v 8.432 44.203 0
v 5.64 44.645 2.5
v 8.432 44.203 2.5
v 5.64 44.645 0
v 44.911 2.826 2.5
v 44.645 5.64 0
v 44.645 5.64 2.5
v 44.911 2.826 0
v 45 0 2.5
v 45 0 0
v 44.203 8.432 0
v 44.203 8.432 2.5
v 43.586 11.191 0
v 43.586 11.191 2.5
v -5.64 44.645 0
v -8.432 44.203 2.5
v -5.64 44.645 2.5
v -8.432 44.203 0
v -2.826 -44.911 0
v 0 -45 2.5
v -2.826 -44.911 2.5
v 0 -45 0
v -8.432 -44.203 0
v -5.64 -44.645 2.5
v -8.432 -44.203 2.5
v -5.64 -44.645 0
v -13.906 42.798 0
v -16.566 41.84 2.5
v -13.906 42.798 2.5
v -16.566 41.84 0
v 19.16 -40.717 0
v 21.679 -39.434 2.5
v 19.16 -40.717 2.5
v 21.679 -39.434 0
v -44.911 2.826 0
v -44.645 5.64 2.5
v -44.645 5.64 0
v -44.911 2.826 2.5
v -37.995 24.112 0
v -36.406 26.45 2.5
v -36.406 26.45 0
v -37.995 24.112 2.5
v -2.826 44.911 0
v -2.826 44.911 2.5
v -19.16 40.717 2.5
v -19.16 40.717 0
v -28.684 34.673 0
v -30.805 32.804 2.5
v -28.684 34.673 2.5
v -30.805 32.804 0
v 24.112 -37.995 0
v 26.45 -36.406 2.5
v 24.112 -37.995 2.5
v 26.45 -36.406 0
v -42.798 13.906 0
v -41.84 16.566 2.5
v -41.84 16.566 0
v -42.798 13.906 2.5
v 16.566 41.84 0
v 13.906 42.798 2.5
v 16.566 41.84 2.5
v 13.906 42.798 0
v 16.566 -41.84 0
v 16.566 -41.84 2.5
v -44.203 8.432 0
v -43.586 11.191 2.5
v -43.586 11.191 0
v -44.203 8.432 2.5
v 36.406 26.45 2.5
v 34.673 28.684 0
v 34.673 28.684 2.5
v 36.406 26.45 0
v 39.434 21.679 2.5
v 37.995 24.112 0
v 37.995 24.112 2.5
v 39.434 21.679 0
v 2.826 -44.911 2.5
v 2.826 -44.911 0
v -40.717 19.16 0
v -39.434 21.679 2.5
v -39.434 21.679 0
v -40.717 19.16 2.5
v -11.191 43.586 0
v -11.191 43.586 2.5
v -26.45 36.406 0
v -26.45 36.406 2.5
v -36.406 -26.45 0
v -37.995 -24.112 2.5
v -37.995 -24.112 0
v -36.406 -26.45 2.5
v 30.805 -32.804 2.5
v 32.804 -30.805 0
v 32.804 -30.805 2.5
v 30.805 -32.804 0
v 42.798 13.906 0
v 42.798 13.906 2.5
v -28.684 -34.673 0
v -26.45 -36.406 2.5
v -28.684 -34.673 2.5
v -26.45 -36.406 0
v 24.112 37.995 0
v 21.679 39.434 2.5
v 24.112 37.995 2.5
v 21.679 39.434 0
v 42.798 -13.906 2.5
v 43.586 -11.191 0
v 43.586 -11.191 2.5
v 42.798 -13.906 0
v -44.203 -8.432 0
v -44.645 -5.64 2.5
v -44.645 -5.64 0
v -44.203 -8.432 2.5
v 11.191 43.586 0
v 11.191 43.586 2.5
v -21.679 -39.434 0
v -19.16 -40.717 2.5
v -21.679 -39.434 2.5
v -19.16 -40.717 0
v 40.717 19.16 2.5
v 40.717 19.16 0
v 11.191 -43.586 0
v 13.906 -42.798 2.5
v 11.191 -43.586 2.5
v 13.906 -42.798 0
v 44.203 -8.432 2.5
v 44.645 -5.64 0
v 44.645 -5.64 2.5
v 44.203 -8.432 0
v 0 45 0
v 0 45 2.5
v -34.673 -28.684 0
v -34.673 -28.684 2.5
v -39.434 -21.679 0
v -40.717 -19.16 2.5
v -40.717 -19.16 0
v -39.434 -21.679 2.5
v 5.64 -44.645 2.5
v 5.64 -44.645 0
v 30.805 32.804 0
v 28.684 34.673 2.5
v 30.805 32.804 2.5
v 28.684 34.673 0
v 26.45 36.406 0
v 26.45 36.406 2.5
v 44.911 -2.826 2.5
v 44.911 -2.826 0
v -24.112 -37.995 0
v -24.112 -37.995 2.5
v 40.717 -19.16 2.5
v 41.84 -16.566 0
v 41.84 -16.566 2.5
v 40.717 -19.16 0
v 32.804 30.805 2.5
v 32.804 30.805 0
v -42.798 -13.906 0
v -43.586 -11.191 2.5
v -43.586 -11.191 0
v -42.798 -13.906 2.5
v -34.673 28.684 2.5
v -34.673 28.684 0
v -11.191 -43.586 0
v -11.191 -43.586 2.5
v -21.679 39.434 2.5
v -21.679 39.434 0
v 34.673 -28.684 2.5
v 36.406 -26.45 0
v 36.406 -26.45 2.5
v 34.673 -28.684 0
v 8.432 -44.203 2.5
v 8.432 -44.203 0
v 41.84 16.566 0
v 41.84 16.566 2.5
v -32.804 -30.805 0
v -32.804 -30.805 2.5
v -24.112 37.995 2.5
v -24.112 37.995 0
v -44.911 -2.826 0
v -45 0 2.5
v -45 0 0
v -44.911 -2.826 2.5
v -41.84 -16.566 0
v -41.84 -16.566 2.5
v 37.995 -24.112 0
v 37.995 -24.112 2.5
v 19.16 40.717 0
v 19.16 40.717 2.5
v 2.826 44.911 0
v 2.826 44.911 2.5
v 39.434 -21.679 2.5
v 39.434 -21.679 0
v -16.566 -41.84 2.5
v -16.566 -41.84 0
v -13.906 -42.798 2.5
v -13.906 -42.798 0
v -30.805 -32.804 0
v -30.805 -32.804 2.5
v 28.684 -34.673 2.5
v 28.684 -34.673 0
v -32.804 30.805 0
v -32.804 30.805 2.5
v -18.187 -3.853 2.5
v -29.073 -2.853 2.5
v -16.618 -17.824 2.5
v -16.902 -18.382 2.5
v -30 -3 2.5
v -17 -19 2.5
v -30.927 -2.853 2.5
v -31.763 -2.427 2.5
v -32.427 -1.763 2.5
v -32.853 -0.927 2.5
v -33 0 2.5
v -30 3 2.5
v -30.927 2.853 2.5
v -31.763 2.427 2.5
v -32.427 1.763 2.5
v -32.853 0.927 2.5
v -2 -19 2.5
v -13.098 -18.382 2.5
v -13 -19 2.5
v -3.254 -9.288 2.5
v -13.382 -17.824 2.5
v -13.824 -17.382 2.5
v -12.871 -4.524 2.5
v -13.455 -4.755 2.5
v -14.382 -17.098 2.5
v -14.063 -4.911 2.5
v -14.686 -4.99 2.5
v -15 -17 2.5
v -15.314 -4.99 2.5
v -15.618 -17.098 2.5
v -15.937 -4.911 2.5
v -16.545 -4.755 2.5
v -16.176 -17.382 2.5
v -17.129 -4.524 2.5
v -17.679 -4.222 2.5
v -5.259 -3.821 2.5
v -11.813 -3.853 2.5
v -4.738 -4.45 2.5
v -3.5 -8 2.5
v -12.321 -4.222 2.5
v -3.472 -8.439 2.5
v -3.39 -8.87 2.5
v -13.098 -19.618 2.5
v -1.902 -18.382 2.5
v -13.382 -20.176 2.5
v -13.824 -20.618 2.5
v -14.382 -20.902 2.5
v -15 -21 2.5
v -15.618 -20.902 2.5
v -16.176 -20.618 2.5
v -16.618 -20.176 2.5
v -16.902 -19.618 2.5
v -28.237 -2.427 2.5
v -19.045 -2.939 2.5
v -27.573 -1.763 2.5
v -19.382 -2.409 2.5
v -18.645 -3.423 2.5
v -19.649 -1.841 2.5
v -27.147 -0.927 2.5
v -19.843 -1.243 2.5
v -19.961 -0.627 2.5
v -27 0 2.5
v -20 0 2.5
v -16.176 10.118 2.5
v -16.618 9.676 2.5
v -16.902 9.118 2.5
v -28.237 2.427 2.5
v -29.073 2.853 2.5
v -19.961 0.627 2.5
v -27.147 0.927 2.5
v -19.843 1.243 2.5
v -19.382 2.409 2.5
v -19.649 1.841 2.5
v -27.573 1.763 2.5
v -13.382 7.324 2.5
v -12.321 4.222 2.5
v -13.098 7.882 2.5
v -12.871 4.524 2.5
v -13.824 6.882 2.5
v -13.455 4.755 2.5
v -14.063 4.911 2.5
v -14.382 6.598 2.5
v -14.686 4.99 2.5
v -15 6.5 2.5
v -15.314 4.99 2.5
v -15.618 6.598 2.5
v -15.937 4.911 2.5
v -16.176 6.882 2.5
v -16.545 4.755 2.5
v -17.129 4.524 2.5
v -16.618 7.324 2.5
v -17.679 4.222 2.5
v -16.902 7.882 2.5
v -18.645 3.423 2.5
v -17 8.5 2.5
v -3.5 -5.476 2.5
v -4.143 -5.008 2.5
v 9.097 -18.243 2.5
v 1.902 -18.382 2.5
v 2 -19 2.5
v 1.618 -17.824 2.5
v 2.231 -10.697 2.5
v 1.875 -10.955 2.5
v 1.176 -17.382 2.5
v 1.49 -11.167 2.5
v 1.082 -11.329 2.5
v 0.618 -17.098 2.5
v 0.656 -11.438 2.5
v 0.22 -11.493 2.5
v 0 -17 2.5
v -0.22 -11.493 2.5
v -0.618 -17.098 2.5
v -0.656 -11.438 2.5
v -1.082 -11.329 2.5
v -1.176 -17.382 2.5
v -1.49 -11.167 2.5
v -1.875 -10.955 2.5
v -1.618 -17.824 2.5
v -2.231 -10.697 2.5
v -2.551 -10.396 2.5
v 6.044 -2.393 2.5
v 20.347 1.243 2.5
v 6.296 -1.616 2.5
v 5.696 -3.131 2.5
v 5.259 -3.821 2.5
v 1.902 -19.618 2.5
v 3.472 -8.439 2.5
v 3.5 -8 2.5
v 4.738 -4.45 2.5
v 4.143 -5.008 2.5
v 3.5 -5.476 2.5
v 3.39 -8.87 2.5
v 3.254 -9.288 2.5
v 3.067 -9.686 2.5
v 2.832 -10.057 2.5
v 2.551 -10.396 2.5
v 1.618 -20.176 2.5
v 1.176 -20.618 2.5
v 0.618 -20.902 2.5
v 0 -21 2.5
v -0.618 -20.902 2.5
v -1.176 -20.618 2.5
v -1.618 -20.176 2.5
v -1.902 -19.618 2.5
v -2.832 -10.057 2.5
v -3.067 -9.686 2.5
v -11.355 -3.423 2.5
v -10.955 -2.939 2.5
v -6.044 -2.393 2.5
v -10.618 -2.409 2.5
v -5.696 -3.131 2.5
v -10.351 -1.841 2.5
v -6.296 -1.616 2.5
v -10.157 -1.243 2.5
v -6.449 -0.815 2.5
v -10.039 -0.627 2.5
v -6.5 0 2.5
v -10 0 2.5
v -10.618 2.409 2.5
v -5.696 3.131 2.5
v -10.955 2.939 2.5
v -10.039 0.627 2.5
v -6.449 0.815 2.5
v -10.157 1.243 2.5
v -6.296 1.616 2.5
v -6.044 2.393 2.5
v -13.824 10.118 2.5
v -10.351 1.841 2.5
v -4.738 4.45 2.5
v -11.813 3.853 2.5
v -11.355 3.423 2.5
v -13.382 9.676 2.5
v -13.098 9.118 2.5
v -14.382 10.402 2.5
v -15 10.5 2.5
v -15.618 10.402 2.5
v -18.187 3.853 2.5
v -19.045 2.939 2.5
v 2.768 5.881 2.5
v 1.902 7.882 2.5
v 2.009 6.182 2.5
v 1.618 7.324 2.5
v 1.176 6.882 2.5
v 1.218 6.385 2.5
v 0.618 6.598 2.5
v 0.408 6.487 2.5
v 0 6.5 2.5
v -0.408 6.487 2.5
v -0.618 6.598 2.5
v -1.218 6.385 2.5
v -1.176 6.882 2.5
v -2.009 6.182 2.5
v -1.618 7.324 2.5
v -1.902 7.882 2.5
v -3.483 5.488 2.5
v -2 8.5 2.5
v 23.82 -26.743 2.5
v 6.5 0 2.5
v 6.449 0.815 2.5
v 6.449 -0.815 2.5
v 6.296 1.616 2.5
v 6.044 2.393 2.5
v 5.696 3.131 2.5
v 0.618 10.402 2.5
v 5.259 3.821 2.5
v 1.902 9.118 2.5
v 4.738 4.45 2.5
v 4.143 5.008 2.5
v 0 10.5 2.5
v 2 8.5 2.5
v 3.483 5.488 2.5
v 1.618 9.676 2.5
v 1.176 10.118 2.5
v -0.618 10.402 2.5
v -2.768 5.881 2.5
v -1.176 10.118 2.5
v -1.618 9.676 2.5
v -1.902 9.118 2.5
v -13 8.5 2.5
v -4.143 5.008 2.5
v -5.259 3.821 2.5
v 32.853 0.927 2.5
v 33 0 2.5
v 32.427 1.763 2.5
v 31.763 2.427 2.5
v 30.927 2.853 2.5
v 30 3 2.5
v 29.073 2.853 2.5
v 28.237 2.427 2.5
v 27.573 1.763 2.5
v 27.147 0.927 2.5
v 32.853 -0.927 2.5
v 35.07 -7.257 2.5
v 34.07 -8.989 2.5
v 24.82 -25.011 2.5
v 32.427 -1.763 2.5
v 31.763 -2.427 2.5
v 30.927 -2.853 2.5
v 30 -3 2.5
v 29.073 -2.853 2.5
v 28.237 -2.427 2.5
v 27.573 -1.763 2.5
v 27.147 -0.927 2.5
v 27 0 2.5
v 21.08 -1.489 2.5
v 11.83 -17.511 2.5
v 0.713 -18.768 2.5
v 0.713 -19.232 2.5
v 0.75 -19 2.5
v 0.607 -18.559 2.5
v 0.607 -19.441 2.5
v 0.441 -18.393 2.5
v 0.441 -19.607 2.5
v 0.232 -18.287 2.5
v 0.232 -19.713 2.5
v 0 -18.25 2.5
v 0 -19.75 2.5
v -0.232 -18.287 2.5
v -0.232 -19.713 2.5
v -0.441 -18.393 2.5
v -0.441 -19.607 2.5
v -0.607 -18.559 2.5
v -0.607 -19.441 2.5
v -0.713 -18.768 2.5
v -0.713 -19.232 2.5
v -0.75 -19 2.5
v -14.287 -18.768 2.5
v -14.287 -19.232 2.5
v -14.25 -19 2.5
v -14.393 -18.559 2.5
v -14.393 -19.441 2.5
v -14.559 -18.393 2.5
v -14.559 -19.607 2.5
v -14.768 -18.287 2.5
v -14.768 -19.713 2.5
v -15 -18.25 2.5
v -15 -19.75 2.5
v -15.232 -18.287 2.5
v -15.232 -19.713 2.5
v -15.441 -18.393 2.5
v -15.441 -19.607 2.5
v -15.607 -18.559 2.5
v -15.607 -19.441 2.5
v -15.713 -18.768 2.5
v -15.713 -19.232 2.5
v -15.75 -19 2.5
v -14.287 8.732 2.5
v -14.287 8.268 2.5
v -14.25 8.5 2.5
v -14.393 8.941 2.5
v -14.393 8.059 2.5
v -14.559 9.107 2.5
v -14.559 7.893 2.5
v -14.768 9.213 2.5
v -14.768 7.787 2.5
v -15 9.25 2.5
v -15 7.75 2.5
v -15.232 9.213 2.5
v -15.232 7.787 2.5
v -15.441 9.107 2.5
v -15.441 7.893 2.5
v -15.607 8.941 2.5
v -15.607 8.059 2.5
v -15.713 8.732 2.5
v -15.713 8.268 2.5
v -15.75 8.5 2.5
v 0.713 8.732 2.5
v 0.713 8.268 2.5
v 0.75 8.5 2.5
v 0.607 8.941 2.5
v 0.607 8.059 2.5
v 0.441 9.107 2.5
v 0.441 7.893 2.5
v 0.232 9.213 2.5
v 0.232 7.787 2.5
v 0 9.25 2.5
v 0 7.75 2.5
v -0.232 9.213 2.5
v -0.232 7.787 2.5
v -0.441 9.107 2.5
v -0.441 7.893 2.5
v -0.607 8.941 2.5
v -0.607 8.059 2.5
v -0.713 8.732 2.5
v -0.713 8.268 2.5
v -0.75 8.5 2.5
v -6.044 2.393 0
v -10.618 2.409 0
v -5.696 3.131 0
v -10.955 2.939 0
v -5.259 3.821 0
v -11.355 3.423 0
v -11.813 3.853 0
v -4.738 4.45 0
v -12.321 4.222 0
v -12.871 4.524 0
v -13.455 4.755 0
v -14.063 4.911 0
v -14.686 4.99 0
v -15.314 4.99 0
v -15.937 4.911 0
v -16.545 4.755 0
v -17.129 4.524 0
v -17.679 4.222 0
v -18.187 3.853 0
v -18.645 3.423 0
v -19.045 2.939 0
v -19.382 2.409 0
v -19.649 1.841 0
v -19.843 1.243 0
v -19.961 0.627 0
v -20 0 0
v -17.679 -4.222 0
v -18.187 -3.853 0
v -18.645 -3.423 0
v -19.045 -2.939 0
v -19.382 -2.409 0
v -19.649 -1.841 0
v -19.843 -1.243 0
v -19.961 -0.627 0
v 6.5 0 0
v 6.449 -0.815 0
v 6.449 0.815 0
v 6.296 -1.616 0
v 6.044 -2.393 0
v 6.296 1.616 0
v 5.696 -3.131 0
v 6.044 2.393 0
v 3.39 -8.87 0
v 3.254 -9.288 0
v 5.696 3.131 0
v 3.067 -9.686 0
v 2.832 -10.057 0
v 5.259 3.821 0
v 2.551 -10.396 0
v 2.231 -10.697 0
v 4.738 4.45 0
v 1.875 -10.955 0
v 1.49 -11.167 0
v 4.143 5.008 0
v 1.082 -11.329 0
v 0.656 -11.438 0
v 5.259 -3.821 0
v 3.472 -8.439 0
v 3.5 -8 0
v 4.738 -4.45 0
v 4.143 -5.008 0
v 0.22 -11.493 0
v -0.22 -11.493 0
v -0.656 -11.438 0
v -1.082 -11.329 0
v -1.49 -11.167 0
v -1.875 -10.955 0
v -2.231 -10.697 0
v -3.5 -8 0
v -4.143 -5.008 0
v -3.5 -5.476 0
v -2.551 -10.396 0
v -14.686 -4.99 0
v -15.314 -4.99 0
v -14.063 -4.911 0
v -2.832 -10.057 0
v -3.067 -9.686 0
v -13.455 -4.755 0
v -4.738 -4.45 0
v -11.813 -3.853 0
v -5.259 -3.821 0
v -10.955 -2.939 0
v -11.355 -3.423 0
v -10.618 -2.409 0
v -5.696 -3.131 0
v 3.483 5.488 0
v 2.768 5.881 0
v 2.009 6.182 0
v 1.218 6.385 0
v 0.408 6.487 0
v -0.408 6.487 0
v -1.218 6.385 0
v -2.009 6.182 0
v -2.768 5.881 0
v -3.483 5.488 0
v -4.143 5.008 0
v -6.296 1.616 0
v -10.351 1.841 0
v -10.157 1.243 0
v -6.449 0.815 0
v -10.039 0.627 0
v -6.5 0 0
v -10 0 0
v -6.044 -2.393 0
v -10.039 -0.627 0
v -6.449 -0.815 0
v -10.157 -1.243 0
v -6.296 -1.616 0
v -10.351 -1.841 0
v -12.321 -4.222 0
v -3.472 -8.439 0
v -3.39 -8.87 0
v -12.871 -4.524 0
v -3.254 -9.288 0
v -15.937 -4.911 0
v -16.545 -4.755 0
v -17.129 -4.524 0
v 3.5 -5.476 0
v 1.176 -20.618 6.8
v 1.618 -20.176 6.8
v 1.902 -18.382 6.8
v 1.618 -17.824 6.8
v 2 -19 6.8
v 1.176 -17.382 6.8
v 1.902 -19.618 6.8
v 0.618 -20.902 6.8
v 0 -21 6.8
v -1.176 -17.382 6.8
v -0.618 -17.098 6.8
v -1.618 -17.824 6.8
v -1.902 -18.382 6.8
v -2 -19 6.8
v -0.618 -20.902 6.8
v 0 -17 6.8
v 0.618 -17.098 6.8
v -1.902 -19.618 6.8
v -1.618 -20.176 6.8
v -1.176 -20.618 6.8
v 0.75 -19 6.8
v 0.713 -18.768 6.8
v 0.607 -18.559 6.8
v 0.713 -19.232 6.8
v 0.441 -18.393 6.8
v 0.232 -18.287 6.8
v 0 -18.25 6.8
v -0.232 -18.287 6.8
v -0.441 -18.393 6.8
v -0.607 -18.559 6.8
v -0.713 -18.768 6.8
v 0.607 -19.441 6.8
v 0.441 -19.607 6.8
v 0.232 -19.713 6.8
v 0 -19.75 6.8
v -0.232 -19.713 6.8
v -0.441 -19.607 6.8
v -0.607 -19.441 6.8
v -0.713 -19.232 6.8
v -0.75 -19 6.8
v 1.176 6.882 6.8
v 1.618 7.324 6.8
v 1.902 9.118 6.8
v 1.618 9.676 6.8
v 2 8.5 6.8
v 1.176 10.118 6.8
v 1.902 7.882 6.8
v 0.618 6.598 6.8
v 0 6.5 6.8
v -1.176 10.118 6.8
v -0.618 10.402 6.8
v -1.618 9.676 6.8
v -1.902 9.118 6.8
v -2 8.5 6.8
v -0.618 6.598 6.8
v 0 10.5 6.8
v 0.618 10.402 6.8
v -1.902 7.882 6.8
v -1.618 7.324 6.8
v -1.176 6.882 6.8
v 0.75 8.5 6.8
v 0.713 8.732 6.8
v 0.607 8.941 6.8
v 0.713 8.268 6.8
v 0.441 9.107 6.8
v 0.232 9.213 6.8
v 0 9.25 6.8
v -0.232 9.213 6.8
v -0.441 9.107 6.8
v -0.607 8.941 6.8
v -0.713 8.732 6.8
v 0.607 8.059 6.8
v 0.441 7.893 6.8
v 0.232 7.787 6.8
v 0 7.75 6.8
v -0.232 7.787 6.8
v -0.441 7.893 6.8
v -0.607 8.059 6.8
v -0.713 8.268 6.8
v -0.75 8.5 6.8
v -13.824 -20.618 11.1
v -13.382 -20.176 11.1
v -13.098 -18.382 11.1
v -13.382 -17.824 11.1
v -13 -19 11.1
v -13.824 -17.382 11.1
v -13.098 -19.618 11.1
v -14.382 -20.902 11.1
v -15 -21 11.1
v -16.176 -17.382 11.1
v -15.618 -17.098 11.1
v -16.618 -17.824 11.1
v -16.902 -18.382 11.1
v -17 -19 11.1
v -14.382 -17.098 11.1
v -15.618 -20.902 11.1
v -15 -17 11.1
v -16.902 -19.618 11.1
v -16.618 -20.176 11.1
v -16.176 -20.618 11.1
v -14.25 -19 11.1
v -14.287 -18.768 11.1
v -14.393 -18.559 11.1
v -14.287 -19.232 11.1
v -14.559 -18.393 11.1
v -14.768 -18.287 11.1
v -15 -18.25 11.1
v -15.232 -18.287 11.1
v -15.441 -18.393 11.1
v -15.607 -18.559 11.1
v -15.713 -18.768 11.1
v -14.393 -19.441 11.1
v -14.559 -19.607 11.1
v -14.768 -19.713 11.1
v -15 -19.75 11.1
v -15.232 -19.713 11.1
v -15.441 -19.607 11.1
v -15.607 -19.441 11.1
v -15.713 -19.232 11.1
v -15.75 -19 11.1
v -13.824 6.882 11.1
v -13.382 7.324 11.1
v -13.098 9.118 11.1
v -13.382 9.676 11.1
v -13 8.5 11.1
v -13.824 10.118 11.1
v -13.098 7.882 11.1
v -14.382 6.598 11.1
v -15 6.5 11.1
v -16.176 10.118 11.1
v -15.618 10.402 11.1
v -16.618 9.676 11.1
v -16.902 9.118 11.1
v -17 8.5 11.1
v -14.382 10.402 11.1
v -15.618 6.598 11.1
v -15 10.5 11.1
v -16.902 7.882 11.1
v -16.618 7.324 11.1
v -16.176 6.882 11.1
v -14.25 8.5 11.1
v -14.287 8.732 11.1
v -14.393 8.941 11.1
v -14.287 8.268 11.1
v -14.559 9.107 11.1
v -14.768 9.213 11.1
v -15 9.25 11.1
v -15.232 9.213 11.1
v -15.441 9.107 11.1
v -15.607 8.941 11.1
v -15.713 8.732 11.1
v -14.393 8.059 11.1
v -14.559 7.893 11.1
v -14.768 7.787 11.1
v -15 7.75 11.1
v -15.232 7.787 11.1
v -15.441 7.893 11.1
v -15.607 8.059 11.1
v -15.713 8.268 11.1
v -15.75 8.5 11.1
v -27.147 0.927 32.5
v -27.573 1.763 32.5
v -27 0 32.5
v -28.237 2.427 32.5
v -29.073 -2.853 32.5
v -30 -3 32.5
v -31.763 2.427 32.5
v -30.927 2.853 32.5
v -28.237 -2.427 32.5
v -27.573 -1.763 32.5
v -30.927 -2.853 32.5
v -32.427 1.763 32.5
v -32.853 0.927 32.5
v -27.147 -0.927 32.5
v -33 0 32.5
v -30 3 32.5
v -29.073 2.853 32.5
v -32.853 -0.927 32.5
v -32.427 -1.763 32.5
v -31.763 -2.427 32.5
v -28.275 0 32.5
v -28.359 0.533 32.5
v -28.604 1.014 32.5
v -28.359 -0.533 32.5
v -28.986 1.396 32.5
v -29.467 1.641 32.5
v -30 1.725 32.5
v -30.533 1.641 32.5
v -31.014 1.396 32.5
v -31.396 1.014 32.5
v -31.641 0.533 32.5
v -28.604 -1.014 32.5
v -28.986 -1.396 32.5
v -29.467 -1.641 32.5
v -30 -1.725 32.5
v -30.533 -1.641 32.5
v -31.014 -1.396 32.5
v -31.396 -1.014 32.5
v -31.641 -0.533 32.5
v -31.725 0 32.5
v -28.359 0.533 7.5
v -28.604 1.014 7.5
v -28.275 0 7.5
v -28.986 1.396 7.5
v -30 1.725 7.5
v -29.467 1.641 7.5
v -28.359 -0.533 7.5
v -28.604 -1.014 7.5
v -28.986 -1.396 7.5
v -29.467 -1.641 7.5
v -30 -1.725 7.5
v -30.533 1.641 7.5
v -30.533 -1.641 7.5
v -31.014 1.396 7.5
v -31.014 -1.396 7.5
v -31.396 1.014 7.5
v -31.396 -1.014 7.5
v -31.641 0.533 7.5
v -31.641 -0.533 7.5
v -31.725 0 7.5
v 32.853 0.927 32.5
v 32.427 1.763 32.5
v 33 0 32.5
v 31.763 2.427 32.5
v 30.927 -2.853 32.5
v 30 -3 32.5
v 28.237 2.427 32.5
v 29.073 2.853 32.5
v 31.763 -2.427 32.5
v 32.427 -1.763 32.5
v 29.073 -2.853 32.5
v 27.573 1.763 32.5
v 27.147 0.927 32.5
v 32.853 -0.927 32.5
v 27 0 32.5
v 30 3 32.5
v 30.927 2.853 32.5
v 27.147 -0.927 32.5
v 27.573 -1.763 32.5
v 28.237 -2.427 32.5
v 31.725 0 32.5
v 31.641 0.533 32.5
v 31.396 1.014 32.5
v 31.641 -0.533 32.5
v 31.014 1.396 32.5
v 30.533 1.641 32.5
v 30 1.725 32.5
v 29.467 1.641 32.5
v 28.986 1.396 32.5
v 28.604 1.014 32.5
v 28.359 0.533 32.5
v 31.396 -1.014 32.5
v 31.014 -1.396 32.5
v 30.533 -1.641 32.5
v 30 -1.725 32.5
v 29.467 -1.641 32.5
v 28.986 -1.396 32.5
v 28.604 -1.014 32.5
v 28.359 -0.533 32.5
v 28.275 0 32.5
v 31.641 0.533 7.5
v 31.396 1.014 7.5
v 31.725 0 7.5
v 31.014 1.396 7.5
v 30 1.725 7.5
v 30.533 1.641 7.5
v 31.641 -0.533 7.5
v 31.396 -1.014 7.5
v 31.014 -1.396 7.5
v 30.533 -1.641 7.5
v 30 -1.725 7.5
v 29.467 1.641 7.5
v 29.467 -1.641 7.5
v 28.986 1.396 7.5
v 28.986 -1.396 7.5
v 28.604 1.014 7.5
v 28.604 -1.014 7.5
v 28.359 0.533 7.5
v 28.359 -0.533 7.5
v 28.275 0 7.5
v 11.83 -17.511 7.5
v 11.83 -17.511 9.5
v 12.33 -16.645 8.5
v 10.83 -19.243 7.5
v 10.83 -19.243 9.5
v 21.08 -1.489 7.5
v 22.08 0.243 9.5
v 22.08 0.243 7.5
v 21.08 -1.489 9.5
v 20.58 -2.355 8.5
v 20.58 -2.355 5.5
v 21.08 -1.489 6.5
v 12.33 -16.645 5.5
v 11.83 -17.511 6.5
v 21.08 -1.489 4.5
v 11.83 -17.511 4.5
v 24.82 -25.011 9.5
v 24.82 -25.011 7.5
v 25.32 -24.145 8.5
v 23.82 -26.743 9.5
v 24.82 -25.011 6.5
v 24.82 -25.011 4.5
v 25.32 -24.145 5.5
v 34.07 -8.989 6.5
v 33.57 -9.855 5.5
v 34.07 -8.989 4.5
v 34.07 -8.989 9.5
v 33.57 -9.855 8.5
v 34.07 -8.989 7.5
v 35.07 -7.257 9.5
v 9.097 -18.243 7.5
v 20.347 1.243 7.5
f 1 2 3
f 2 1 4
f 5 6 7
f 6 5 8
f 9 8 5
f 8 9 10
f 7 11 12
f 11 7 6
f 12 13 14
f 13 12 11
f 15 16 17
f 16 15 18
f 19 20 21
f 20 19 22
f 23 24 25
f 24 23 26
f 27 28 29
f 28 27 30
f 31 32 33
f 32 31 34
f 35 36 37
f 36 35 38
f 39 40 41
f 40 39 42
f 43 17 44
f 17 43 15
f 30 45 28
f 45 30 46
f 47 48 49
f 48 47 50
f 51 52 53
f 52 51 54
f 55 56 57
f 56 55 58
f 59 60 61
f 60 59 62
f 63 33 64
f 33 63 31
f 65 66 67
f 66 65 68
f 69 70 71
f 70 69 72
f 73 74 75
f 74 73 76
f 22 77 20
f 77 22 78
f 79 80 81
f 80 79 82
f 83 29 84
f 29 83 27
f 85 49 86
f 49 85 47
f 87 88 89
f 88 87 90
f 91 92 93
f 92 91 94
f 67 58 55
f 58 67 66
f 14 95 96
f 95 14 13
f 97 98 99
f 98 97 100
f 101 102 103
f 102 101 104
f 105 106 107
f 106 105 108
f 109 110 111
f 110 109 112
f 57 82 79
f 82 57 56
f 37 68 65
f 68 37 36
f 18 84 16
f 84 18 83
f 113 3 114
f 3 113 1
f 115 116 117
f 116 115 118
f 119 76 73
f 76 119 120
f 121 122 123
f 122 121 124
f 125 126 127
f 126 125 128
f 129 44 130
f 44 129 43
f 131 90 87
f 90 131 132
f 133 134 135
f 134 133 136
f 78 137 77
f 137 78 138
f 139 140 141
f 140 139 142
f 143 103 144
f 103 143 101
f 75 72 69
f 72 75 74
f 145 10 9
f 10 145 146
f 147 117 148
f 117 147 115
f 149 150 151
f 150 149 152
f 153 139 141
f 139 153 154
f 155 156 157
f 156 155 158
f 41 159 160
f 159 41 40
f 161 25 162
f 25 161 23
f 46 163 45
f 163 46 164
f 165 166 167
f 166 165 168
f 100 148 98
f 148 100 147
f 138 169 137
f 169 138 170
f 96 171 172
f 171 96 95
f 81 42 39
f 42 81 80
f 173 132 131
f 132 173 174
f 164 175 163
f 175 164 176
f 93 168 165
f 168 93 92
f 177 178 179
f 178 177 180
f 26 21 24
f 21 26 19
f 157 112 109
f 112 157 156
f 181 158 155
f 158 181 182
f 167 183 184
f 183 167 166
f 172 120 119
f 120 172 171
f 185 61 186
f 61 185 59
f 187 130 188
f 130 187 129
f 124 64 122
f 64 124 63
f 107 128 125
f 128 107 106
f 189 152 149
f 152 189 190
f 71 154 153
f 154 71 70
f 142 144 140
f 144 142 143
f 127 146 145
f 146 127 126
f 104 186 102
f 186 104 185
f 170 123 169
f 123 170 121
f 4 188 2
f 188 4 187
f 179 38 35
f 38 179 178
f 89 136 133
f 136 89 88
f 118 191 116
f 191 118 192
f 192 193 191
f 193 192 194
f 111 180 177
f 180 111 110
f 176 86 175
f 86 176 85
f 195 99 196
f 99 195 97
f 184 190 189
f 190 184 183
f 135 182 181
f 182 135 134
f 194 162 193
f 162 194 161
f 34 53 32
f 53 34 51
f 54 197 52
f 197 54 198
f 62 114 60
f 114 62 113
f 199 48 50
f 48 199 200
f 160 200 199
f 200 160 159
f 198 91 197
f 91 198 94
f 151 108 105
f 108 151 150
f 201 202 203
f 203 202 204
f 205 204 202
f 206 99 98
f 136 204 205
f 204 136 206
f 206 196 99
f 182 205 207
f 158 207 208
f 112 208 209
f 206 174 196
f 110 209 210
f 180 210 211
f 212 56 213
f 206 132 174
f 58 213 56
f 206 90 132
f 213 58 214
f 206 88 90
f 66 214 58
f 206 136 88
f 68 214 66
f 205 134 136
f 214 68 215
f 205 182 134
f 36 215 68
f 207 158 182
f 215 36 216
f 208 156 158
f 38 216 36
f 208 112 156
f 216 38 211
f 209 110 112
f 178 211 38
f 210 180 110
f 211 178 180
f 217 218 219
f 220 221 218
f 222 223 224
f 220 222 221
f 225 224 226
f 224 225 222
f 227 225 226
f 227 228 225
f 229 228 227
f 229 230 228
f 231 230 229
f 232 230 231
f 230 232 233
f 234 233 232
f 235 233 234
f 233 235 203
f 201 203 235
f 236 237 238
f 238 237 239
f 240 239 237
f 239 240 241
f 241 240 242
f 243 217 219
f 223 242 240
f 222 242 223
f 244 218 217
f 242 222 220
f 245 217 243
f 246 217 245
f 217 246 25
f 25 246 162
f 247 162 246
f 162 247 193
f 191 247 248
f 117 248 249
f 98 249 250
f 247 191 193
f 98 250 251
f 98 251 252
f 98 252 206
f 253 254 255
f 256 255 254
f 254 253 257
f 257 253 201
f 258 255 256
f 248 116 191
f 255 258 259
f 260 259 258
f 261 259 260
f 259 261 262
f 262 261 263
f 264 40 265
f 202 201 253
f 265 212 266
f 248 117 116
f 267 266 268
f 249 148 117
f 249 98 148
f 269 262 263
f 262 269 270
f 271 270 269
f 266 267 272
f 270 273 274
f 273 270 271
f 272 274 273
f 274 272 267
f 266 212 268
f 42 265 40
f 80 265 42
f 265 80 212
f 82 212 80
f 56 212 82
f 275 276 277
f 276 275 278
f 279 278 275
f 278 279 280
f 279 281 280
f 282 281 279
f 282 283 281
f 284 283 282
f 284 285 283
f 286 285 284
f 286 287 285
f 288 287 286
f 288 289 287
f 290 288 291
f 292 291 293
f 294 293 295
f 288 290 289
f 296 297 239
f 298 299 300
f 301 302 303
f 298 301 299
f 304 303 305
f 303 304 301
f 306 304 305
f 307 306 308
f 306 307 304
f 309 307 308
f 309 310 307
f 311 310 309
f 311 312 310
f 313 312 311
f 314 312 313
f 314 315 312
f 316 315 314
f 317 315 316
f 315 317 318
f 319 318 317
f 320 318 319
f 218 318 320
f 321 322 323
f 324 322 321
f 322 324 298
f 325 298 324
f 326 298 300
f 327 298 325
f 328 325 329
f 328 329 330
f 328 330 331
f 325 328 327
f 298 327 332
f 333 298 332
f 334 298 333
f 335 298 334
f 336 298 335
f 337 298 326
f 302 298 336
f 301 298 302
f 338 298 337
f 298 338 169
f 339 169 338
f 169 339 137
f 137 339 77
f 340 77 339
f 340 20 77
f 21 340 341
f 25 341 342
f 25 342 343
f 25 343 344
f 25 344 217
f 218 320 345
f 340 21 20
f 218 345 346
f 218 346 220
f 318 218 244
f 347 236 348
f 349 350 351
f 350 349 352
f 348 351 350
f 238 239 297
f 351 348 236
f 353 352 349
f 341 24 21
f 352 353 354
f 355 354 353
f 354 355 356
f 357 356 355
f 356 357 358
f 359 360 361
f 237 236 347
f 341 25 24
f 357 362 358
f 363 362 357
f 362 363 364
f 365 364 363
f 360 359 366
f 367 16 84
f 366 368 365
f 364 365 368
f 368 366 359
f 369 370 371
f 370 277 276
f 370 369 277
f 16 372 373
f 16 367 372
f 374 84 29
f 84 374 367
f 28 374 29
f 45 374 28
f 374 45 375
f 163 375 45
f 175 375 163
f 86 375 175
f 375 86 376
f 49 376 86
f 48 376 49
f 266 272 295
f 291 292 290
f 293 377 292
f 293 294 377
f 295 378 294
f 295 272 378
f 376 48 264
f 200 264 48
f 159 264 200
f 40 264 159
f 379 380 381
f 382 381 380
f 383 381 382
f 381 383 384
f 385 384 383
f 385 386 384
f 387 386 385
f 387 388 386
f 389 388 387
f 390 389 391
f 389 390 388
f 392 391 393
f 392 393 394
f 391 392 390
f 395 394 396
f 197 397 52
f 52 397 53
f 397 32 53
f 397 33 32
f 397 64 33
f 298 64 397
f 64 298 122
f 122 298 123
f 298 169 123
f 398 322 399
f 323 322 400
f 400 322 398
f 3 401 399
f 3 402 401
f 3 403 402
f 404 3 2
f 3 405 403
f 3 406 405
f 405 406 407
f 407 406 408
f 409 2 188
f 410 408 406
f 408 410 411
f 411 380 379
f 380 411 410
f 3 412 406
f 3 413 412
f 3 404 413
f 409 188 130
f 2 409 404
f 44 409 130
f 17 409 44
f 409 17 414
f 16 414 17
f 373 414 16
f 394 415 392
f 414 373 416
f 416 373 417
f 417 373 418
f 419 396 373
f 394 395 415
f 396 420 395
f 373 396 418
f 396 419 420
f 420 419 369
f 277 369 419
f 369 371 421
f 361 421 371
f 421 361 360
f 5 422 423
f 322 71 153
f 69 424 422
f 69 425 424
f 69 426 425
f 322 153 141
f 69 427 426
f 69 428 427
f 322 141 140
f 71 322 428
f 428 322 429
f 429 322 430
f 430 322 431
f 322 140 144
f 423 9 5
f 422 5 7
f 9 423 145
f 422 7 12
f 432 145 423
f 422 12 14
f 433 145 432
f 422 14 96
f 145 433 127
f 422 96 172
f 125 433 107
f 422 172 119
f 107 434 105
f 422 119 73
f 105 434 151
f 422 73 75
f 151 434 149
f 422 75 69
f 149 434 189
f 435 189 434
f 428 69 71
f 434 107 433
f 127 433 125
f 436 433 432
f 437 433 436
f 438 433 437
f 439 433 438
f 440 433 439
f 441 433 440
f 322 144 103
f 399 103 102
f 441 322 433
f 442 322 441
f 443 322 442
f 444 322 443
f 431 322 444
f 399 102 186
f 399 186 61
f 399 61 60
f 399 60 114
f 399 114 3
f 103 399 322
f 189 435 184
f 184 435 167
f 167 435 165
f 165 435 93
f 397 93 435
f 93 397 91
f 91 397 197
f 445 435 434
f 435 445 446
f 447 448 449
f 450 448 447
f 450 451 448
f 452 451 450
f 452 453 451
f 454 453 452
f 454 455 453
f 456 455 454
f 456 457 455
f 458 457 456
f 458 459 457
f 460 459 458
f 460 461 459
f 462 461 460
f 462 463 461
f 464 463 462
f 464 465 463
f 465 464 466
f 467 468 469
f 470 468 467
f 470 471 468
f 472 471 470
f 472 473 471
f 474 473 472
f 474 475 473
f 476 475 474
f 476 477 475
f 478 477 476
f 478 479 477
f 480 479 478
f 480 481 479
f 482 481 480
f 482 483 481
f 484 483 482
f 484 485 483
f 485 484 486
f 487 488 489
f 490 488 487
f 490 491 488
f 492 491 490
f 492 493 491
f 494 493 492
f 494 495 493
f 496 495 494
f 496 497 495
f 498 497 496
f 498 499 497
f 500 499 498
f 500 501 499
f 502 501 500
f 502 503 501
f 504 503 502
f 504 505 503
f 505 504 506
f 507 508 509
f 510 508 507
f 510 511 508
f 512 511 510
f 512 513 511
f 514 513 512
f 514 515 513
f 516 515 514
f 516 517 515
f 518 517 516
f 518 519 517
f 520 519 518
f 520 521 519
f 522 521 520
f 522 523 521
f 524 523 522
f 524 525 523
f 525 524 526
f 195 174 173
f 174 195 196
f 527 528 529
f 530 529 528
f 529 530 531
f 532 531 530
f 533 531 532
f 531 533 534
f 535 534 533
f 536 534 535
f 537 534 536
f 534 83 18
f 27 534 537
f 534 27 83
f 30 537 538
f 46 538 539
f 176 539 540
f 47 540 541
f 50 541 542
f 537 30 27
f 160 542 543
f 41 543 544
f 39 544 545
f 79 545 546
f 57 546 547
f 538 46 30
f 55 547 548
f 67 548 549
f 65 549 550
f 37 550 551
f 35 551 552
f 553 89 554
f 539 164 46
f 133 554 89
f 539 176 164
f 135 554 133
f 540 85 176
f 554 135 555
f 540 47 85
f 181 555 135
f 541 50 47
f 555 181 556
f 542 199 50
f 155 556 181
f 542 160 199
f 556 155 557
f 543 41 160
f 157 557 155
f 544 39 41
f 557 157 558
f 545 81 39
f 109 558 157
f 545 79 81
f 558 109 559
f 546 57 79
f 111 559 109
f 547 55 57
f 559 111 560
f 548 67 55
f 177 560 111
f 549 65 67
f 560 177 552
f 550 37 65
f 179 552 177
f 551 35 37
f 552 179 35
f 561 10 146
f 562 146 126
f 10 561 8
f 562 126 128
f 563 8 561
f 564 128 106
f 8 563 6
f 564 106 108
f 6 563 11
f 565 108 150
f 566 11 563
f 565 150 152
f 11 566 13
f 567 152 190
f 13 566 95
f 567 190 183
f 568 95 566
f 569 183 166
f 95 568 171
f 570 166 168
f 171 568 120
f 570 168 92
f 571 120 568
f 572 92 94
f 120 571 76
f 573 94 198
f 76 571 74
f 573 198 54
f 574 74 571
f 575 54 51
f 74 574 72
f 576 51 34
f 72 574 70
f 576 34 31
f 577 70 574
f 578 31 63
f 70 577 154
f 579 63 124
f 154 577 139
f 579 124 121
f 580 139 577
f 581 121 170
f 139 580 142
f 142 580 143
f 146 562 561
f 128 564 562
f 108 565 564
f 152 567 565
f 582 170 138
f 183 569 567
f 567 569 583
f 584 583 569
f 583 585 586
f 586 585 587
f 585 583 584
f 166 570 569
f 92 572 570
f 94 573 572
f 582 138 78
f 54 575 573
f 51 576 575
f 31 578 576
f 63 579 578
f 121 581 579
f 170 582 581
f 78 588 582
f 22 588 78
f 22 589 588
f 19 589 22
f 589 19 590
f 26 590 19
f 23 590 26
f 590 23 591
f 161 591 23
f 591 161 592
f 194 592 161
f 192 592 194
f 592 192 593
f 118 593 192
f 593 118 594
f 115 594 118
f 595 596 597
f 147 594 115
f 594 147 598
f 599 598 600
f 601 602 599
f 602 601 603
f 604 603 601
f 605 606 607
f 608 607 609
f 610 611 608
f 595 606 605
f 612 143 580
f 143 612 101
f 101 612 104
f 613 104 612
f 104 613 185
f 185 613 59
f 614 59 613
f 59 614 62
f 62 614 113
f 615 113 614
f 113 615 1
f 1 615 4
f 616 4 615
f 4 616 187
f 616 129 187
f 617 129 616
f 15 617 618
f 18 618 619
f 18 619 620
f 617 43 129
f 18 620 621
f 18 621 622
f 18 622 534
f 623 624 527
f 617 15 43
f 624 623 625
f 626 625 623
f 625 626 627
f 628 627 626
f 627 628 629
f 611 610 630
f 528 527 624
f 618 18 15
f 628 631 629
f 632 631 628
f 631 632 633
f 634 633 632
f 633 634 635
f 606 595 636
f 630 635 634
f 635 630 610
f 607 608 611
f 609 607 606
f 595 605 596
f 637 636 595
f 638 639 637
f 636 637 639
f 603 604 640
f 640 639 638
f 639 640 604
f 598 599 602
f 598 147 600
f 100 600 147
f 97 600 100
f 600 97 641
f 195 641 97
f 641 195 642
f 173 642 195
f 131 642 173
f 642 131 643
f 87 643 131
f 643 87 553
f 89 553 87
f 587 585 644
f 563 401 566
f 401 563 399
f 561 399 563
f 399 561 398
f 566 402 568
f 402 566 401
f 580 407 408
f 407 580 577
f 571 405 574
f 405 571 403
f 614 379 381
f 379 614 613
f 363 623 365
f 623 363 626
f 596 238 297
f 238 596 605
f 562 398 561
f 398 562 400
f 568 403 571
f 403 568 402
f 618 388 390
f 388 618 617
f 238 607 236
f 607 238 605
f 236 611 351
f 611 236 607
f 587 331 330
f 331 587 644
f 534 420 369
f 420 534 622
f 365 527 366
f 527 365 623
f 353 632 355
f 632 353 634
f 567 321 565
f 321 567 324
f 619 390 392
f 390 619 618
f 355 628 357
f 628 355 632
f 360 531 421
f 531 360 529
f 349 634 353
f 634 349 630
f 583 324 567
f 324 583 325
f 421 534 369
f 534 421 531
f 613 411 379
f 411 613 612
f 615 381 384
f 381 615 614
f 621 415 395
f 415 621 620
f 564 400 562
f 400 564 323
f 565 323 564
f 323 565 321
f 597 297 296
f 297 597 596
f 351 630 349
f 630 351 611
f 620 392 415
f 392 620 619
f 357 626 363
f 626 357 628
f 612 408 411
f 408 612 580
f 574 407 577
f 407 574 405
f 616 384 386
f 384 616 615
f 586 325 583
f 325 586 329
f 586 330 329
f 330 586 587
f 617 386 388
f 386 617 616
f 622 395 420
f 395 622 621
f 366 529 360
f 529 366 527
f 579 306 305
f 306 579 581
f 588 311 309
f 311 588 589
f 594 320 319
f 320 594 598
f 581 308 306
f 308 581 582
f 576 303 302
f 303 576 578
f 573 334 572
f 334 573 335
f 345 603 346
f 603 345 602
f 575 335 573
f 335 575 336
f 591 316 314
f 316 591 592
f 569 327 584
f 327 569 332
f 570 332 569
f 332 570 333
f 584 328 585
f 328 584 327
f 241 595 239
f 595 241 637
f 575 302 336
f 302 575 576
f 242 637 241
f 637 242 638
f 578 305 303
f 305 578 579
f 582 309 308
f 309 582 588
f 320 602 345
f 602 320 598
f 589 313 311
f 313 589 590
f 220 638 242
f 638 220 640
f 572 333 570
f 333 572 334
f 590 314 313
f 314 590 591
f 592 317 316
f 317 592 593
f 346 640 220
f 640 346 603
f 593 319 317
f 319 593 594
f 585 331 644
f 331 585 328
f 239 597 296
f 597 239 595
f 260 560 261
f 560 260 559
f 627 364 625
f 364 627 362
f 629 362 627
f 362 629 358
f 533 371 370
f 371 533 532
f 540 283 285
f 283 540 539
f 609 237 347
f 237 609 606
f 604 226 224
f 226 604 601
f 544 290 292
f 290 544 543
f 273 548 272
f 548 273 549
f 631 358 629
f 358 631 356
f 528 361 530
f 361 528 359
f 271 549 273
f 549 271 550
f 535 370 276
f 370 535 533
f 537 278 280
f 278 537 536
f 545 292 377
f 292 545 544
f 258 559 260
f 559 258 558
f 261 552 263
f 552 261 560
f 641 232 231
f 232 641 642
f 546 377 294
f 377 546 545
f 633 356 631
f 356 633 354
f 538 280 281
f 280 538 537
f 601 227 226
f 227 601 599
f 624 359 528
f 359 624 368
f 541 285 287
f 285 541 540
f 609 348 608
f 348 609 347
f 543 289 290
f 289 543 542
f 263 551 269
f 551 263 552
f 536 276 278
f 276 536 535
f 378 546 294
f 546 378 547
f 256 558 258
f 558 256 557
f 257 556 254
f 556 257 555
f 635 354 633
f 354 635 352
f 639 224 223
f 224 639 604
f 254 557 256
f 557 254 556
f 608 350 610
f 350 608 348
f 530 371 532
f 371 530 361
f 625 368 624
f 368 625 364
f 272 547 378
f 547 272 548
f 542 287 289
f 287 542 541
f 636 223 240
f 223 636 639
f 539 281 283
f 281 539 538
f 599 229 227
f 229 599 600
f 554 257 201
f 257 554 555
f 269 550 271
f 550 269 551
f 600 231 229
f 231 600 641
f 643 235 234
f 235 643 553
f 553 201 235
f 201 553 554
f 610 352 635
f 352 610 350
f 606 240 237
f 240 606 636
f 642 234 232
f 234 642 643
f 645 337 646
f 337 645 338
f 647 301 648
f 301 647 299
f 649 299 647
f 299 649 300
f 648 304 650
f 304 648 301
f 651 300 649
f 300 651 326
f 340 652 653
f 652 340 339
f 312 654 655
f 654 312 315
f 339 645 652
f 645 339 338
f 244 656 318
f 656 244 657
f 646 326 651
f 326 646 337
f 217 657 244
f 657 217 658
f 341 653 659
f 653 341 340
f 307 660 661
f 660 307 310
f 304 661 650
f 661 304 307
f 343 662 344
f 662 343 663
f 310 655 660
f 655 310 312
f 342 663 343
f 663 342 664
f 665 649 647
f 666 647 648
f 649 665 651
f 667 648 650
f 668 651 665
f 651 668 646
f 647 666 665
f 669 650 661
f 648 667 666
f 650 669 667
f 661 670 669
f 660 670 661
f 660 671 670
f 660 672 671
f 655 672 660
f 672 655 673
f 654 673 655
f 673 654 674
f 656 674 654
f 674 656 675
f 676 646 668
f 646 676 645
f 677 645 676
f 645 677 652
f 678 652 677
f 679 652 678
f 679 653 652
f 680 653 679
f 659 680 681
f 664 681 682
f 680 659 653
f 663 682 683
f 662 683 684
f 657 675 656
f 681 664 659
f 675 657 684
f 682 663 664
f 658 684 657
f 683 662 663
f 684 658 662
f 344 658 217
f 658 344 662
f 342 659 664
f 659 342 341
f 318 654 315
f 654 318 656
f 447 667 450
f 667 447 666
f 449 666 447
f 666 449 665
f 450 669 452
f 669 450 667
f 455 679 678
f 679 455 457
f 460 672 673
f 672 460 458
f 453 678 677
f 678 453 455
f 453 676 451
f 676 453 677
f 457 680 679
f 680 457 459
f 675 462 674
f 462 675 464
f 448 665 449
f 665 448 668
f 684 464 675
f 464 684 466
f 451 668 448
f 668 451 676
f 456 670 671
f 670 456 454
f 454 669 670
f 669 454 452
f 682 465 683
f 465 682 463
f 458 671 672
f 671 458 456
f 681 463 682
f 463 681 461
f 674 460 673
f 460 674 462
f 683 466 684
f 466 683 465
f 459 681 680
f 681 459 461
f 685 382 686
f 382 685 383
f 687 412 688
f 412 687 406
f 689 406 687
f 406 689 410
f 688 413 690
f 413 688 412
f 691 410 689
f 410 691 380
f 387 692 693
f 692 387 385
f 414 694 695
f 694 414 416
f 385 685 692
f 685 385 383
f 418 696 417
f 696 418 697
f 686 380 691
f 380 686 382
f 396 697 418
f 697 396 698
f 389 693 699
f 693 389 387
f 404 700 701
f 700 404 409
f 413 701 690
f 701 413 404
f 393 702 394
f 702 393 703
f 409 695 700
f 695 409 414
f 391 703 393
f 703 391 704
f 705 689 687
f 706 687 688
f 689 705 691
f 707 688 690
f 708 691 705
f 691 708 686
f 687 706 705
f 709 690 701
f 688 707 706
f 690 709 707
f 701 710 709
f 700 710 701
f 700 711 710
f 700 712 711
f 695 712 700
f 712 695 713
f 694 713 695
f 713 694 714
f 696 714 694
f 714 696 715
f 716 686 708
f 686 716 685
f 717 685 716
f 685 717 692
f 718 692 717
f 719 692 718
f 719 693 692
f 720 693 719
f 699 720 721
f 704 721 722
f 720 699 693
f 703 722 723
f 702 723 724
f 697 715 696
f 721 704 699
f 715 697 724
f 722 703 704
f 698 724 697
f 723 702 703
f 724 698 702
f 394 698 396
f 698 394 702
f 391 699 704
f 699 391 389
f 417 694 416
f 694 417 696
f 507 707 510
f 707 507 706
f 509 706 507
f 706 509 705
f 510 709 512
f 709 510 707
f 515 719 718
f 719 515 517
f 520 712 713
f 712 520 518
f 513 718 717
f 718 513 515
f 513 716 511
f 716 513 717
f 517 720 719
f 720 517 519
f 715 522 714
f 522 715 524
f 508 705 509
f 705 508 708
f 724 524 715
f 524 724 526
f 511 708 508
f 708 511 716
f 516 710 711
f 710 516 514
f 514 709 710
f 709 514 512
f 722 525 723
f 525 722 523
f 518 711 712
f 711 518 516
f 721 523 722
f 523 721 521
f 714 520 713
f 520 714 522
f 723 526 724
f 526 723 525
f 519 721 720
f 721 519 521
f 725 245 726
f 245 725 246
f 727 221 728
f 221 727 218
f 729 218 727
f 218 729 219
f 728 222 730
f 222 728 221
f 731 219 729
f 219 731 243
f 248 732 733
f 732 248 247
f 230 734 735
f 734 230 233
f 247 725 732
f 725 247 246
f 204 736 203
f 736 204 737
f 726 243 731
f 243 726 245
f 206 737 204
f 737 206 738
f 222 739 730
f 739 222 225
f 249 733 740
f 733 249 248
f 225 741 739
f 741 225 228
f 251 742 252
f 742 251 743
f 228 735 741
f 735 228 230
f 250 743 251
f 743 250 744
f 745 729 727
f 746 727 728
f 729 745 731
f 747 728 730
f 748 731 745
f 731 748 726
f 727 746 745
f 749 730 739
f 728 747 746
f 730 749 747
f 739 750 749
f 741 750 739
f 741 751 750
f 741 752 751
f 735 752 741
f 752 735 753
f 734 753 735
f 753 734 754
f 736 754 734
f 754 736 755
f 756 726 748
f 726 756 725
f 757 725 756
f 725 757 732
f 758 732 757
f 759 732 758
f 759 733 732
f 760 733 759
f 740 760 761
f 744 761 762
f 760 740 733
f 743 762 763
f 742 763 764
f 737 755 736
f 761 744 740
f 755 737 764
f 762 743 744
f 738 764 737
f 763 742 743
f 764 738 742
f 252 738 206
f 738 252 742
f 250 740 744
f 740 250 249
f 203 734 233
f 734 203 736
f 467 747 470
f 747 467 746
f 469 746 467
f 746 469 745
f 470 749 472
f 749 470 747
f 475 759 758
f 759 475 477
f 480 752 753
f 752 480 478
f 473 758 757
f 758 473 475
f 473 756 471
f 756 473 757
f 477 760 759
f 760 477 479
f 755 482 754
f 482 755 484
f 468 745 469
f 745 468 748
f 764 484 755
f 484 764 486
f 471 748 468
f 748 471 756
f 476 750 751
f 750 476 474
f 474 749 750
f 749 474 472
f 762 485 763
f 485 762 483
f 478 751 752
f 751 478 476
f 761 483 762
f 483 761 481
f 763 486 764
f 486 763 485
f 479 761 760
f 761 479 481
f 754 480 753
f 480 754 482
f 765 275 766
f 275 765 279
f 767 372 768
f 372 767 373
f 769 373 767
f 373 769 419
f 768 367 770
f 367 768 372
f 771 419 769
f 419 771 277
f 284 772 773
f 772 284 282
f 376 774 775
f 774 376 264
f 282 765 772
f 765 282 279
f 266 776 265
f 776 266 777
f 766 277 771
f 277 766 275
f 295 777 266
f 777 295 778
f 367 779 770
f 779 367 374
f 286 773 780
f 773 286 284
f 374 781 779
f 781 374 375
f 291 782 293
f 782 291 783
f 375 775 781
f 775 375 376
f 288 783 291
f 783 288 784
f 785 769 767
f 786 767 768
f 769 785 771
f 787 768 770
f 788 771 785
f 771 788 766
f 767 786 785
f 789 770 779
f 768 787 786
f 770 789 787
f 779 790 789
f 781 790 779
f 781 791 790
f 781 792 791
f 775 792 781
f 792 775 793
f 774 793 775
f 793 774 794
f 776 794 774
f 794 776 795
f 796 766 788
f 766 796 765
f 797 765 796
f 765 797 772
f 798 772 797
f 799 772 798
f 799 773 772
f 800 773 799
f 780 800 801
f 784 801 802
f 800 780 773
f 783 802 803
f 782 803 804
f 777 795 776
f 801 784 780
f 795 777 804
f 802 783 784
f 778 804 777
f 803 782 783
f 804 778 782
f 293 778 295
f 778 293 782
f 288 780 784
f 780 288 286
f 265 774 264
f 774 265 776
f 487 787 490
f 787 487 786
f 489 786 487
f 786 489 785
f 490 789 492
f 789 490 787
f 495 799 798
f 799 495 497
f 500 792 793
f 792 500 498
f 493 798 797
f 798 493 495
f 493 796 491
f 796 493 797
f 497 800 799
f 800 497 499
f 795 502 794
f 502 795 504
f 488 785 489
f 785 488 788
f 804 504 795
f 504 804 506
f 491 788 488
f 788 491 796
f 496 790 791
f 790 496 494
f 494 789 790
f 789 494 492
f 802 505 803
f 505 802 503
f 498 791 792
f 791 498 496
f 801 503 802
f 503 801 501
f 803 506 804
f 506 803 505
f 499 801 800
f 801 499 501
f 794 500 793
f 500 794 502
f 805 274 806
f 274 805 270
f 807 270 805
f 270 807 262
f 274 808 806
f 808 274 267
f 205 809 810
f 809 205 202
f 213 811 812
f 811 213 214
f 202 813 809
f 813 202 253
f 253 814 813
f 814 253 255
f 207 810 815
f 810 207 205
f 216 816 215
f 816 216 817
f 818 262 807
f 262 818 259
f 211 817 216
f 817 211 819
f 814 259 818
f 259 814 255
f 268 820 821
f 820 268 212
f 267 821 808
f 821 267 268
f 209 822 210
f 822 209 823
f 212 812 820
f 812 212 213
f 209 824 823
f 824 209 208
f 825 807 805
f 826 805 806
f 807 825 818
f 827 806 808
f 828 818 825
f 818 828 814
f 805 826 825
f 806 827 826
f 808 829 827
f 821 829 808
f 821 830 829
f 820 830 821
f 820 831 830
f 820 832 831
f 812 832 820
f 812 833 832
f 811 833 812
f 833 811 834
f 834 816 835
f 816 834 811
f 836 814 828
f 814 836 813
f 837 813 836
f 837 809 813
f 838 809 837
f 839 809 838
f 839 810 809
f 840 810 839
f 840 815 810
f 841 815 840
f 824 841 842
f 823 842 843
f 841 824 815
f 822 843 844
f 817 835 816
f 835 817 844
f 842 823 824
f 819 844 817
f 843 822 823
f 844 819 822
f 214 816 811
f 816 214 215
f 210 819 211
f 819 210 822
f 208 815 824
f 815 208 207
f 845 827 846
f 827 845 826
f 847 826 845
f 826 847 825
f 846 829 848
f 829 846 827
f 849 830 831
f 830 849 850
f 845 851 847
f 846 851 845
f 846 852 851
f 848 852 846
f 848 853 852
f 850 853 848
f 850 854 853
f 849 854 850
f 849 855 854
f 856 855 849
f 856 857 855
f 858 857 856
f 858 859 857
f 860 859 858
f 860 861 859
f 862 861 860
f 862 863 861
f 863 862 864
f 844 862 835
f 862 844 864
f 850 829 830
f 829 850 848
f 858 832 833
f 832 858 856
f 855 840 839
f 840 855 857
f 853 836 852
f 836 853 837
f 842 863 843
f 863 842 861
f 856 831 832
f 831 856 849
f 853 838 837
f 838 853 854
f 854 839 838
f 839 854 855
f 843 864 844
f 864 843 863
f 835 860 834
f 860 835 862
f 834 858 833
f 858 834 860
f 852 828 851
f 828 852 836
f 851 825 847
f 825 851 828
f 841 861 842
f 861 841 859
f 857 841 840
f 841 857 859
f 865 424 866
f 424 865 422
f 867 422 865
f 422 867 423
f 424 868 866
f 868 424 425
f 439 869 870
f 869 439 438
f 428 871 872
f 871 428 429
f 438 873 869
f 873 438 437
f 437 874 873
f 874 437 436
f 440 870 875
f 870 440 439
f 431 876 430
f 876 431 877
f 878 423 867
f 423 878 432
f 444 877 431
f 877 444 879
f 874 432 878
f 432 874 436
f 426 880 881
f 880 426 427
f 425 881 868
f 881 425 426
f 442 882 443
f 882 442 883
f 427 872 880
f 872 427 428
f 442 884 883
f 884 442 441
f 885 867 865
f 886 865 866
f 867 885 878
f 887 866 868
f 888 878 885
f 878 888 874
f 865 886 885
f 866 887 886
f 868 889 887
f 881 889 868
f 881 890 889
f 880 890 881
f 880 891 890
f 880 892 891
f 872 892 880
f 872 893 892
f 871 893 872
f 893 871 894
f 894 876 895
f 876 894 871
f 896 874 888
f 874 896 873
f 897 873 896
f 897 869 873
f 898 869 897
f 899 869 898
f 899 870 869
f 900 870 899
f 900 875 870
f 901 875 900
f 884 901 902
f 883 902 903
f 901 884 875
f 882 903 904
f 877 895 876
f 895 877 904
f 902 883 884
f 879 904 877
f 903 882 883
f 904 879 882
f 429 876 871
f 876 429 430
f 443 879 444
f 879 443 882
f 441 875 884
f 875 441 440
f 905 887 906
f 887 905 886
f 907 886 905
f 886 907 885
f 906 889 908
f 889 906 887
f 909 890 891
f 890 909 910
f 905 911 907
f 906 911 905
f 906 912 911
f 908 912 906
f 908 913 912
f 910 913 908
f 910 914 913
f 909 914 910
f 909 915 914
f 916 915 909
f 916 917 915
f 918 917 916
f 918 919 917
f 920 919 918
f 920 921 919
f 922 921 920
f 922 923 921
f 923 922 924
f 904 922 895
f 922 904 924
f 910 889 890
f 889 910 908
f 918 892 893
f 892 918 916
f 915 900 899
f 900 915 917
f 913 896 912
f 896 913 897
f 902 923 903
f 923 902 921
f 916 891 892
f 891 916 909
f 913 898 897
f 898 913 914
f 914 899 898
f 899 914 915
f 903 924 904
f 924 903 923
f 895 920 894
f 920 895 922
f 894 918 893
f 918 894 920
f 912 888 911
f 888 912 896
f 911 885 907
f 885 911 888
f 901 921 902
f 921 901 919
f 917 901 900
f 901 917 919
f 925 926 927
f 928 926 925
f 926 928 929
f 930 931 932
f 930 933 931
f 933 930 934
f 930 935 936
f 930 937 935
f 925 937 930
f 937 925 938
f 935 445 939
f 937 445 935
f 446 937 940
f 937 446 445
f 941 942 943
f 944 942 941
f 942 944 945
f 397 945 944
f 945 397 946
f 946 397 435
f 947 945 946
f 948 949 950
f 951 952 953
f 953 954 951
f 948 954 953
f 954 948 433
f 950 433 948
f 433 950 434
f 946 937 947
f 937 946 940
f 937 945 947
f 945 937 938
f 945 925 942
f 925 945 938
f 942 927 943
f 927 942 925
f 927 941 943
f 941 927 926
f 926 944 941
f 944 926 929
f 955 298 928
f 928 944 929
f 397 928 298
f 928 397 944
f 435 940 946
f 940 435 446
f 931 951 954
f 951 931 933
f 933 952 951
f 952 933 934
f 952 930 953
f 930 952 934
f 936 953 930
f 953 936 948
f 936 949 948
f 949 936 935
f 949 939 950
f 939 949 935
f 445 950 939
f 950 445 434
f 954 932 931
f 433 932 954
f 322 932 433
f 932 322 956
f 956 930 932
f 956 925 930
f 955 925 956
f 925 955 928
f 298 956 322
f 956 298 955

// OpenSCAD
face_d=90;
face_th=2.5;


// servo calculations
servo_flange_len=4.7;
servo_flange_hole_to_edge_dist=2.35;
servo_width=12.3;
servo_len=22.8;

servo_left_flange_hole_to_hole = servo_flange_len+servo_len - servo_width/2 - servo_flange_hole_to_edge_dist;
servo_right_flange_hole_to_hole = servo_width/2 + servo_flange_len - servo_flange_hole_to_edge_dist;

servo_1_hole_d = 13;
servo_2_hole_d = 10;

servo_1_holder_h=4.3;
servo_holder_d=4;

servo_2_holder_h=8.6;

servo_holder_hole_h=10;
servo_holder_hole_d=1.5;

servo_2_offset = 15;

mount_d = 6;
mount_h = 30; // check me!
mount_hole_h = mount_h - 5;  // leave 5mm at the bottom? too much?
mount_hold_d = 3.45; // #8 75%

mount_hole_dist = 60;

module servo_support(len) {
    difference() {
        cylinder(h=len,d=servo_holder_d,$fn=20);
        translate([0,0,len-servo_holder_hole_h])
            cylinder(h=servo_holder_hole_h+0.1,d=servo_holder_hole_d,$fn=20);
    }
}

module rear_mount(len) {
    difference() {
        cylinder(h=len,d=mount_d,$fn=20);
        translate([0,0,len-mount_hole_h])
            cylinder(h=mount_hole_h+0.1,d=mount_hold_d,$fn=20);
    }
}

module module_holder() {
    union() {
        //cube([15,2.5,10]);
        mw=18.5;
        rotate([90,0,0]) linear_extrude(15) {
            polygon(points=[
                [0,0],
                [0,2],
                [1,3],
                [0,4],
                [0,5],
                [1,6],
                [0,7],
                [-2,7],
                [-2,0]
            ]);
            polygon(points=[
                [mw,0],
                [mw,2],
                [mw-1,3],
                [mw,4],
                [mw,5],
                [mw-1,6],
                [mw,7],
                [mw+2,7],
                [mw+2,0]
            ]);
        }
        translate([-2,0,0]) cube([mw+4,2,5]);
    }
}

module face() {
    union() {
        // face
        difference() {
            // main cylinder
            cylinder(h=face_th,d=face_d,$fn=100);
            // cutout for servo 1
            translate([0,0,-0.1])
                cylinder(d=servo_1_hole_d,h=face_th+0.2,$fn=50);
            translate([0,-8,-0.1])
                cylinder(d=7,h=face_th+0.2,$fn=50);
            translate([-3.5,-8,-0.1]) 
                cube([7,7,face_th+0.2]);
            // cutout for servo 2
            translate([-servo_2_offset,0,-0.1])
                cylinder(d=servo_2_hole_d,h=face_th+0.2,$fn=50);
            
        }
        // servo supports - servo 1
        translate([0, -servo_left_flange_hole_to_hole,face_th])
            servo_support(servo_1_holder_h);
        translate([0, servo_right_flange_hole_to_hole,face_th])
            servo_support(servo_1_holder_h);

        // servo supports - servo 2
        translate([-servo_2_offset, -servo_left_flange_hole_to_hole,face_th])
            servo_support(servo_2_holder_h);
        translate([-servo_2_offset, servo_right_flange_hole_to_hole,face_th])
            servo_support(servo_2_holder_h);
        
        // rear mounts
        translate([-mount_hole_dist/2, 0, face_th])
            rear_mount(mount_h);
        translate([mount_hole_dist/2, 0, face_th])
            rear_mount(mount_h);
        
        // module holder
        rotate([0,0,60])

        translate([-9.25,-19,face_th])
            module_holder();
    }
}

face();
